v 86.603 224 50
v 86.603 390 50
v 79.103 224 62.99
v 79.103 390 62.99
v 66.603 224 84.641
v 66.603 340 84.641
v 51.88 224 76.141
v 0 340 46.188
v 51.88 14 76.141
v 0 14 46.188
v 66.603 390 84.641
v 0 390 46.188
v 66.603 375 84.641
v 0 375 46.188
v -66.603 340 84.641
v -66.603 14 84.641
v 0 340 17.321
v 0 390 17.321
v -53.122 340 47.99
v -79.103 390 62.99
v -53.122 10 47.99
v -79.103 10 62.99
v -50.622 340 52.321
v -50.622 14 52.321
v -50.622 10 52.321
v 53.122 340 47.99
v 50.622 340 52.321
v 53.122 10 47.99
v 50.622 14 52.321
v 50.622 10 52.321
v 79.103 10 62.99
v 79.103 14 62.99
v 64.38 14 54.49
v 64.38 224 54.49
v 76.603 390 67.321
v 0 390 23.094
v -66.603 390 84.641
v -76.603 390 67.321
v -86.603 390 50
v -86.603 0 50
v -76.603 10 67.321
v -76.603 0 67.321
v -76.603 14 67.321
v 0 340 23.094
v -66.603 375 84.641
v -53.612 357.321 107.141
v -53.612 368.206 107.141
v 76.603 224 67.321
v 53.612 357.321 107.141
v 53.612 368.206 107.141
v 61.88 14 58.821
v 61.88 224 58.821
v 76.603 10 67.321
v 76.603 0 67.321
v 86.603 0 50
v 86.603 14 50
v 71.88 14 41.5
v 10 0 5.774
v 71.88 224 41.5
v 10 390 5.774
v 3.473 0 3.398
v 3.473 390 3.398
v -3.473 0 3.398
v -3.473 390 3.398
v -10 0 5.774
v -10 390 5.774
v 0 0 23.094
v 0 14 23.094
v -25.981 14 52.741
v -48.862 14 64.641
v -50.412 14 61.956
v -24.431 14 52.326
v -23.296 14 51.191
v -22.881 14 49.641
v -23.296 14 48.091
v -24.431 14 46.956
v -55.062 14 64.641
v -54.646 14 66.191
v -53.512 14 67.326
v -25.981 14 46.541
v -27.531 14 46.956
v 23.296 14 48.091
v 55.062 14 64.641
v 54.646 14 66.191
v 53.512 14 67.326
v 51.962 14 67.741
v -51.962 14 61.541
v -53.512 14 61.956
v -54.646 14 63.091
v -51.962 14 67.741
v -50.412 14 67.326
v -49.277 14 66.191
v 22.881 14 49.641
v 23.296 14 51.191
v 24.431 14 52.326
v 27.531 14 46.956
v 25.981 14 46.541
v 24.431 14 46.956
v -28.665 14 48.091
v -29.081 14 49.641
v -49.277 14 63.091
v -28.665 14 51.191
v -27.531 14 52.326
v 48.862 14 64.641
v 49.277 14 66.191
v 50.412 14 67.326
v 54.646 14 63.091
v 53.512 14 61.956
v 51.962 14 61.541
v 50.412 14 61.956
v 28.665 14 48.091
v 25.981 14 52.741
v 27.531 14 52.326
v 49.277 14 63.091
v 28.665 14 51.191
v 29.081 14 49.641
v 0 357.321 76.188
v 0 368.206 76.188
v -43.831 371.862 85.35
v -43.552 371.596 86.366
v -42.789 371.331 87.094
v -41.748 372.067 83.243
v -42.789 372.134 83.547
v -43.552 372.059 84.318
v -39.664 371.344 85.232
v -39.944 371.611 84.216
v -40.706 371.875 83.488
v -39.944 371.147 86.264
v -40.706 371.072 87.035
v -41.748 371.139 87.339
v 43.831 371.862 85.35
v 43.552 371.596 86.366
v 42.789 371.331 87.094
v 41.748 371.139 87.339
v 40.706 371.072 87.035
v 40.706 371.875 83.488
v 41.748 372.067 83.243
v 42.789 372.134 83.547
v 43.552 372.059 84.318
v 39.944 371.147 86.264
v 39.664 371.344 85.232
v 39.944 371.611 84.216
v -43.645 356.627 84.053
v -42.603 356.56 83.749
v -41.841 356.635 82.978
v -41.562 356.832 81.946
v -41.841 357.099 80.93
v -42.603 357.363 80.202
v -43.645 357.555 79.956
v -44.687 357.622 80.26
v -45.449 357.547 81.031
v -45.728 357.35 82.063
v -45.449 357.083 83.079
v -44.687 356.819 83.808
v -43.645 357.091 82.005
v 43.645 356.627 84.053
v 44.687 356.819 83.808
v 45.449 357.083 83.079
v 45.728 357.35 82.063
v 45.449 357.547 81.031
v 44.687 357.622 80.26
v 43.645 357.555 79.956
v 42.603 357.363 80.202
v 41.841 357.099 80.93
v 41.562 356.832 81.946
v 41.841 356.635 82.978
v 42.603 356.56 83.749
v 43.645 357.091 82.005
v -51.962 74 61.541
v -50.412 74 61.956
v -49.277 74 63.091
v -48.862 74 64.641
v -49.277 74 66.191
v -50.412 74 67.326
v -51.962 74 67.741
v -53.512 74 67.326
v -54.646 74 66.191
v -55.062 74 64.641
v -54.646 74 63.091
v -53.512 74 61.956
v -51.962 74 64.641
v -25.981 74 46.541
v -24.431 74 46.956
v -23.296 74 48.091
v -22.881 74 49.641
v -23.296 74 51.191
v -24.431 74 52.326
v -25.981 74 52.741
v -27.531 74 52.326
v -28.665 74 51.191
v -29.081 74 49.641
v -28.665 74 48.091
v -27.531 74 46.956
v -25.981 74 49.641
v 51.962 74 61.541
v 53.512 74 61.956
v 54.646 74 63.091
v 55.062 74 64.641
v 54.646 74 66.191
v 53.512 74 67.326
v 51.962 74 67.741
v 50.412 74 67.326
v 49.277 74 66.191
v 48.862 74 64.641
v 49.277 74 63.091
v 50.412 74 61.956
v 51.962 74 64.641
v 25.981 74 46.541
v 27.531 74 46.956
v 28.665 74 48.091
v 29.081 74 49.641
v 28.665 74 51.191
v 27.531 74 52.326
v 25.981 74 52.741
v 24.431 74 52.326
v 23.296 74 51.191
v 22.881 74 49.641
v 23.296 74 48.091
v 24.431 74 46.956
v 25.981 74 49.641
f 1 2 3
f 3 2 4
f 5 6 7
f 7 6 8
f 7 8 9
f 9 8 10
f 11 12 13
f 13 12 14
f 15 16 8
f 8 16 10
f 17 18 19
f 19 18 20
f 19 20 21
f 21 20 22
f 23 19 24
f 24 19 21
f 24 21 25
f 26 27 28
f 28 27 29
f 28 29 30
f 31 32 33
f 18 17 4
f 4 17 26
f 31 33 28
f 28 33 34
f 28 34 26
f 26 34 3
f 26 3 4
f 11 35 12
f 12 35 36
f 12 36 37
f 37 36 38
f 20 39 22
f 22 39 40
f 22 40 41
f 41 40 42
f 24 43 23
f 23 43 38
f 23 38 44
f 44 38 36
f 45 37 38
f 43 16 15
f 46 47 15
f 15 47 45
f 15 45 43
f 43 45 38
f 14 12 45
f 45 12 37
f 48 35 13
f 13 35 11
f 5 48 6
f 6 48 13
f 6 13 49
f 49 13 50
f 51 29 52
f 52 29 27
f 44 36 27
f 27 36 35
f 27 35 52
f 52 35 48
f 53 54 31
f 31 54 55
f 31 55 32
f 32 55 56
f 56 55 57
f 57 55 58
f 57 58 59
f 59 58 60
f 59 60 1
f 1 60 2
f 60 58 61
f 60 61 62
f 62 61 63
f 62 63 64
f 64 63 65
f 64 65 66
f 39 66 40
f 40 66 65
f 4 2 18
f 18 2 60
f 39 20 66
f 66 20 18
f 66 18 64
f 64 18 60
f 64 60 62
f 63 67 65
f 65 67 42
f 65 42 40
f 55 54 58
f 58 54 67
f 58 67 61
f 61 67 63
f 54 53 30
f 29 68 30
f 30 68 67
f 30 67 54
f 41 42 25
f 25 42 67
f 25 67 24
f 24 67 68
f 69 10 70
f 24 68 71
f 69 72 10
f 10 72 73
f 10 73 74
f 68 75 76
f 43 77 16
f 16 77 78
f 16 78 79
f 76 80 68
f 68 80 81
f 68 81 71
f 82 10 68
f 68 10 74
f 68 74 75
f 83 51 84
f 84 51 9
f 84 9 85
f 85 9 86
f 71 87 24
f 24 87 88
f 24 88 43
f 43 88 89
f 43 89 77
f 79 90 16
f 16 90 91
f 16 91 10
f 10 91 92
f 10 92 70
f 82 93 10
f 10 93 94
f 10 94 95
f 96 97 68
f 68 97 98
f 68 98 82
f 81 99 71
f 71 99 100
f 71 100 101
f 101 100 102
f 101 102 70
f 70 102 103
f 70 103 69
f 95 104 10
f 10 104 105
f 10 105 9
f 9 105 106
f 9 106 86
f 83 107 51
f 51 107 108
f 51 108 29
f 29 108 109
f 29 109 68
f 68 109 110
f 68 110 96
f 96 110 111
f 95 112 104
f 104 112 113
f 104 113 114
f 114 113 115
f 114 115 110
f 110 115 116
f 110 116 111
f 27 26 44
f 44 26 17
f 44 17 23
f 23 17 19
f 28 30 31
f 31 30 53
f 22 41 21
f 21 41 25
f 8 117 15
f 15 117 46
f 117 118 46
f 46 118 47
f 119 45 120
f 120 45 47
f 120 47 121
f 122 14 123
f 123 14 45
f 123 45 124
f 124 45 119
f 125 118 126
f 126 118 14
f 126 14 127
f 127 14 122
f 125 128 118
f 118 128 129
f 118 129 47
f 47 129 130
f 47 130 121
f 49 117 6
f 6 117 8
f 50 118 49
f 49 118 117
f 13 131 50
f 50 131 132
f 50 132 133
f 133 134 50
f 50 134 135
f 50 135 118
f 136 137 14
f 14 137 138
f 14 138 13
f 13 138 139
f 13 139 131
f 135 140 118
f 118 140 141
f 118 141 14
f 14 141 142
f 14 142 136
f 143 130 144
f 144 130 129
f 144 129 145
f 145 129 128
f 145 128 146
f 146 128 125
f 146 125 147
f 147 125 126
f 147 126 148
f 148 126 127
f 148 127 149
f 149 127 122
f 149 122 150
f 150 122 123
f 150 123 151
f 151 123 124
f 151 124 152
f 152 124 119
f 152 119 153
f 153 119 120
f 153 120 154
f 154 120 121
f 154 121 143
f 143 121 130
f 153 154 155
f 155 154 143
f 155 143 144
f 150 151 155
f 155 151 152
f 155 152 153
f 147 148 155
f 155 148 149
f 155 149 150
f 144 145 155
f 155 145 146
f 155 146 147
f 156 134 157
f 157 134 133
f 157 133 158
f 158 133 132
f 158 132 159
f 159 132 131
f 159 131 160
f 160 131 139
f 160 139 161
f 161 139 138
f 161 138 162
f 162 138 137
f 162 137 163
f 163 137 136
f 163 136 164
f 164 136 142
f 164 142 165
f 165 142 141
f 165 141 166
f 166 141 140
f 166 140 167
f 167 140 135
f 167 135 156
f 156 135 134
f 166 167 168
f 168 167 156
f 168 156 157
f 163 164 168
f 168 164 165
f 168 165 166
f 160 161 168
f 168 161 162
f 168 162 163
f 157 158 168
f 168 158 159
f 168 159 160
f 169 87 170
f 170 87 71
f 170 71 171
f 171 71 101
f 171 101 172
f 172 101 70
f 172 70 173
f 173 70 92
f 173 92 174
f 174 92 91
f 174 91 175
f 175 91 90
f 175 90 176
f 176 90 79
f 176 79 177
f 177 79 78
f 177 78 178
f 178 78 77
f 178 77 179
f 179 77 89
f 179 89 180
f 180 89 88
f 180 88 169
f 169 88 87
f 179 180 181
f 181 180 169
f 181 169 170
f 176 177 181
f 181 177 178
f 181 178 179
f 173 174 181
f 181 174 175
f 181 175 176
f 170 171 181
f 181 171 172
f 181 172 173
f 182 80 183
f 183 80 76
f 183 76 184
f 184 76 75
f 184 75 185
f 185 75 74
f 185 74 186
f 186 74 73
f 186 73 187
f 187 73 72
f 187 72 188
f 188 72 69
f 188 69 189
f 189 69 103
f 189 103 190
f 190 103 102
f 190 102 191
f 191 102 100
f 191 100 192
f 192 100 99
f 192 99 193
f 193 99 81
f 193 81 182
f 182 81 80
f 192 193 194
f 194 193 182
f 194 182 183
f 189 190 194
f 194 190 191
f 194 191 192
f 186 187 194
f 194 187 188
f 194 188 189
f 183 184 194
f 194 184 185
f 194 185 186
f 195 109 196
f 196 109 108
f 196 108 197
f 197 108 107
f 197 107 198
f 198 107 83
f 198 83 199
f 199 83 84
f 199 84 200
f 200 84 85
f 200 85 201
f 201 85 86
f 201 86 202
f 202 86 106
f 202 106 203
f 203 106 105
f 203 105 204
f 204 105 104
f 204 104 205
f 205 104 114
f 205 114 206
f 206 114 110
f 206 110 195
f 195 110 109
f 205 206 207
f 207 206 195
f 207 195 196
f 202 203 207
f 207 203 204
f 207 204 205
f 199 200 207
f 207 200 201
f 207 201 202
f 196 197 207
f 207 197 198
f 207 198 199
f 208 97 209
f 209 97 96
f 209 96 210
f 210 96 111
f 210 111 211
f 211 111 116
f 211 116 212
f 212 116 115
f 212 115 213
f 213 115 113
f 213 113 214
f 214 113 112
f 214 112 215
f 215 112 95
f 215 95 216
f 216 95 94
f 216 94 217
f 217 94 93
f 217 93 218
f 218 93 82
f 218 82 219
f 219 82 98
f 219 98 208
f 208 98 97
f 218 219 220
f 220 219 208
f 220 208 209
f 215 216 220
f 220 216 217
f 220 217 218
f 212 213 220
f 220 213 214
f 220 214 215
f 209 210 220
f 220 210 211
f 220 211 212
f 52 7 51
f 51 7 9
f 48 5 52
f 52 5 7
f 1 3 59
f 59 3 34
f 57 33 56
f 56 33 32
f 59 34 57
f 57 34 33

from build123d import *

# Parameters (mm, degrees)
BOSS_EXTRUDE1_DEPTH = 390
CUT_EXTRUDE2_DEPTH  = 14
CUT_EXTRUDE3_DEPTH  = 50
BOSS_EXTRUDE2_DEPTH = 10
BOSS_EXTRUDE3_REACH = 473.852
BOSS_EXTRUDE4_REACH = 479.913
SKETCH22_R          = 2.1
CUT_EXTRUDE4_DEPTH  = 15
SKETCH23_R          = 3.1
CUT_EXTRUDE5_DEPTH  = 60
SKETCH24_W          = 17
SKETCH24_H          = 210
CUT_EXTRUDE6_DEPTH  = 414.617211129


with BuildPart() as part:
    # Sketch1 → Boss-Extrude1 (new body)
    with BuildSketch(Plane(origin=(0, 0, 0), x_dir=(1, 0, 0), z_dir=(0, 1, 0))):
        with BuildLine():
            Line((-10, -5.773502692), (-86.602540378, -50))
            Line((-86.602540378, -50), (-79.102540378, -62.990381057))
            Line((-79.102540378, -62.990381057), (-53.121778265, -47.990381057))
            Line((-53.121778265, -47.990381057), (-50.621778265, -52.320508076))
            Line((-50.621778265, -52.320508076), (-76.602540378, -67.320508076))
            Line((-76.602540378, -67.320508076), (-66.602540378, -84.641016151))
            Line((-66.602540378, -84.641016151), (0, -46.188021535))
            Line((0, -46.188021535), (66.602540378, -84.641016151))
            Line((66.602540378, -84.641016151), (76.602540378, -67.320508076))
            Line((76.602540378, -67.320508076), (50.621778265, -52.320508076))
            Line((50.621778265, -52.320508076), (53.121778265, -47.990381057))
            Line((53.121778265, -47.990381057), (79.102540378, -62.990381057))
            Line((79.102540378, -62.990381057), (86.602540378, -50))
            Line((86.602540378, -50), (10, -5.773502692))
            ThreePointArc((10, -5.773502692), (0, -3.094010768), (-10, -5.773502692))
        make_face()
    extrude(amount=BOSS_EXTRUDE1_DEPTH)

    # Sketch18 → Cut-Extrude2 (cut)
    with BuildSketch(Plane.XZ):
        Polygon((-76.602540378, 67.320508076), (0, 23.094010768), (76.602540378, 67.320508076), (66.602540378, 84.641016151), (0, 46.188021535), (-66.602540378, 84.641016151), align=None)
    extrude(amount=-CUT_EXTRUDE2_DEPTH, mode=Mode.SUBTRACT)

    # Sketch19 → Cut-Extrude3 (cut)
    with BuildSketch(Plane(origin=(0, 390, 0), x_dir=(1, 0, 0), z_dir=(0, 1, 0))):
        Polygon((76.602540378, -67.320508076), (0, -23.094010768), (-76.602540378, -67.320508076), (-79.102540378, -62.990381057), (0, -17.320508076), (79.102540378, -62.990381057), align=None)
    extrude(amount=-CUT_EXTRUDE3_DEPTH, mode=Mode.SUBTRACT)

    # Sketch20 → Boss-Extrude2 (add)
    with BuildSketch(Plane.XZ):
        Polygon((76.602540378, 67.320508076), (50.621778265, 52.320508076), (53.121778265, 47.990381057), (79.102540378, 62.990381057), align=None)
        Polygon((-50.621778265, 52.320508076), (-76.602540378, 67.320508076), (-79.102540378, 62.990381057), (-53.121778265, 47.990381057), align=None)
    extrude(amount=-BOSS_EXTRUDE2_DEPTH)

    # Boss-Extrude3: up to this plane
    boss_extrude3_end = Plane(origin=(-86.602540378, 390, 50), z_dir=(0.8660254037844359, 0, -0.5000000000000048))
    # Sketch21 → Boss-Extrude3 (add, up to the surface)
    with BuildSketch(Plane(origin=(0, 0, 0), x_dir=(0, 0, -1), z_dir=(1, 0, 0)), mode=Mode.PRIVATE) as boss_extrude3_sk1:
        Polygon((-46.188021535, 375), (-76.188021535, 368.206188758), (-76.188021535, 357.320508076), (-46.188021535, 340), align=None)
    boss_extrude3_tool1 = split(extrude(boss_extrude3_sk1.sketch, amount=BOSS_EXTRUDE3_REACH, dir=(-0.866025403784, 0, 0.5), mode=Mode.PRIVATE), bisect_by=boss_extrude3_end, keep=Keep.BOTH, mode=Mode.PRIVATE)
    add(boss_extrude3_tool1.solids().sort_by_distance((0, 359.670666, 58.56037))[0])

    # Boss-Extrude4: up to this plane
    boss_extrude4_end = Plane(origin=(76.602540378, 390, 67.320508076), z_dir=(-0.8660254037844398, 0, -0.49999999999999795))
    # Sketch21<2> → Boss-Extrude4 (add, up to the surface)
    with BuildSketch(Plane(origin=(0, 0, 0), x_dir=(0, 0, -1), z_dir=(1, 0, 0)), mode=Mode.PRIVATE) as boss_extrude4_sk1:
        Polygon((-46.188021535, 375), (-76.188021535, 368.206188758), (-76.188021535, 357.320508076), (-46.188021535, 340), align=None)
    boss_extrude4_tool1 = split(extrude(boss_extrude4_sk1.sketch, amount=BOSS_EXTRUDE4_REACH, dir=(0.866025403784, 0, 0.5), mode=Mode.PRIVATE), bisect_by=boss_extrude4_end, keep=Keep.BOTH, mode=Mode.PRIVATE)
    add(boss_extrude4_tool1.solids().sort_by_distance((0, 359.670666, 58.56037))[0])

    # Sketch22 → Cut-Extrude4 (cut)
    with BuildSketch(Plane(origin=(47.172106066, 360.789319124, 81.704484407), x_dir=(0.9919674102096397, -0.12336978823439819, -0.027938368473838713), z_dir=(0.12649370372465277, 0.9674695714450555, 0.21909352168866236))):
        with Locations((-89.639756751, -1.109544744)):
            Circle(SKETCH22_R)
    cut_extrude4 = extrude(amount=-CUT_EXTRUDE4_DEPTH, mode=Mode.SUBTRACT)

    # Mirror1: Cut-Extrude4 across plane
    add(cut_extrude4.mirror(Plane(origin=(0, 0, 0), x_dir=(0, 0, 1), z_dir=(1, 0, 0))), mode=Mode.SUBTRACT)

    # Sketch23 → Cut-Extrude5 (cut)
    with BuildSketch(Plane.XZ.offset(-14)):
        with Locations((-25.980762114, 49.641016151)):
            Circle(SKETCH23_R)
        with Locations((-51.961524227, 64.641016151)):
            Circle(SKETCH23_R)
    cut_extrude5 = extrude(amount=-CUT_EXTRUDE5_DEPTH, mode=Mode.SUBTRACT)

    # Mirror2: Cut-Extrude5 across plane
    add(cut_extrude5.mirror(Plane(origin=(0, 0, 0), x_dir=(0, 0, 1), z_dir=(1, 0, 0))), mode=Mode.SUBTRACT)

    # Sketch24 → Cut-Extrude6 (cut, through all)
    with BuildSketch(Plane(origin=(0, 0, 0), x_dir=(-0.8660254037844417, 0, -0.4999999999999947), z_dir=(0.4999999999999947, 0, -0.8660254037844417))):
        with Locations((-91.5, 119)):
            Rectangle(SKETCH24_W, SKETCH24_H)
    extrude(amount=-CUT_EXTRUDE6_DEPTH, mode=Mode.SUBTRACT)


solid = part.part
